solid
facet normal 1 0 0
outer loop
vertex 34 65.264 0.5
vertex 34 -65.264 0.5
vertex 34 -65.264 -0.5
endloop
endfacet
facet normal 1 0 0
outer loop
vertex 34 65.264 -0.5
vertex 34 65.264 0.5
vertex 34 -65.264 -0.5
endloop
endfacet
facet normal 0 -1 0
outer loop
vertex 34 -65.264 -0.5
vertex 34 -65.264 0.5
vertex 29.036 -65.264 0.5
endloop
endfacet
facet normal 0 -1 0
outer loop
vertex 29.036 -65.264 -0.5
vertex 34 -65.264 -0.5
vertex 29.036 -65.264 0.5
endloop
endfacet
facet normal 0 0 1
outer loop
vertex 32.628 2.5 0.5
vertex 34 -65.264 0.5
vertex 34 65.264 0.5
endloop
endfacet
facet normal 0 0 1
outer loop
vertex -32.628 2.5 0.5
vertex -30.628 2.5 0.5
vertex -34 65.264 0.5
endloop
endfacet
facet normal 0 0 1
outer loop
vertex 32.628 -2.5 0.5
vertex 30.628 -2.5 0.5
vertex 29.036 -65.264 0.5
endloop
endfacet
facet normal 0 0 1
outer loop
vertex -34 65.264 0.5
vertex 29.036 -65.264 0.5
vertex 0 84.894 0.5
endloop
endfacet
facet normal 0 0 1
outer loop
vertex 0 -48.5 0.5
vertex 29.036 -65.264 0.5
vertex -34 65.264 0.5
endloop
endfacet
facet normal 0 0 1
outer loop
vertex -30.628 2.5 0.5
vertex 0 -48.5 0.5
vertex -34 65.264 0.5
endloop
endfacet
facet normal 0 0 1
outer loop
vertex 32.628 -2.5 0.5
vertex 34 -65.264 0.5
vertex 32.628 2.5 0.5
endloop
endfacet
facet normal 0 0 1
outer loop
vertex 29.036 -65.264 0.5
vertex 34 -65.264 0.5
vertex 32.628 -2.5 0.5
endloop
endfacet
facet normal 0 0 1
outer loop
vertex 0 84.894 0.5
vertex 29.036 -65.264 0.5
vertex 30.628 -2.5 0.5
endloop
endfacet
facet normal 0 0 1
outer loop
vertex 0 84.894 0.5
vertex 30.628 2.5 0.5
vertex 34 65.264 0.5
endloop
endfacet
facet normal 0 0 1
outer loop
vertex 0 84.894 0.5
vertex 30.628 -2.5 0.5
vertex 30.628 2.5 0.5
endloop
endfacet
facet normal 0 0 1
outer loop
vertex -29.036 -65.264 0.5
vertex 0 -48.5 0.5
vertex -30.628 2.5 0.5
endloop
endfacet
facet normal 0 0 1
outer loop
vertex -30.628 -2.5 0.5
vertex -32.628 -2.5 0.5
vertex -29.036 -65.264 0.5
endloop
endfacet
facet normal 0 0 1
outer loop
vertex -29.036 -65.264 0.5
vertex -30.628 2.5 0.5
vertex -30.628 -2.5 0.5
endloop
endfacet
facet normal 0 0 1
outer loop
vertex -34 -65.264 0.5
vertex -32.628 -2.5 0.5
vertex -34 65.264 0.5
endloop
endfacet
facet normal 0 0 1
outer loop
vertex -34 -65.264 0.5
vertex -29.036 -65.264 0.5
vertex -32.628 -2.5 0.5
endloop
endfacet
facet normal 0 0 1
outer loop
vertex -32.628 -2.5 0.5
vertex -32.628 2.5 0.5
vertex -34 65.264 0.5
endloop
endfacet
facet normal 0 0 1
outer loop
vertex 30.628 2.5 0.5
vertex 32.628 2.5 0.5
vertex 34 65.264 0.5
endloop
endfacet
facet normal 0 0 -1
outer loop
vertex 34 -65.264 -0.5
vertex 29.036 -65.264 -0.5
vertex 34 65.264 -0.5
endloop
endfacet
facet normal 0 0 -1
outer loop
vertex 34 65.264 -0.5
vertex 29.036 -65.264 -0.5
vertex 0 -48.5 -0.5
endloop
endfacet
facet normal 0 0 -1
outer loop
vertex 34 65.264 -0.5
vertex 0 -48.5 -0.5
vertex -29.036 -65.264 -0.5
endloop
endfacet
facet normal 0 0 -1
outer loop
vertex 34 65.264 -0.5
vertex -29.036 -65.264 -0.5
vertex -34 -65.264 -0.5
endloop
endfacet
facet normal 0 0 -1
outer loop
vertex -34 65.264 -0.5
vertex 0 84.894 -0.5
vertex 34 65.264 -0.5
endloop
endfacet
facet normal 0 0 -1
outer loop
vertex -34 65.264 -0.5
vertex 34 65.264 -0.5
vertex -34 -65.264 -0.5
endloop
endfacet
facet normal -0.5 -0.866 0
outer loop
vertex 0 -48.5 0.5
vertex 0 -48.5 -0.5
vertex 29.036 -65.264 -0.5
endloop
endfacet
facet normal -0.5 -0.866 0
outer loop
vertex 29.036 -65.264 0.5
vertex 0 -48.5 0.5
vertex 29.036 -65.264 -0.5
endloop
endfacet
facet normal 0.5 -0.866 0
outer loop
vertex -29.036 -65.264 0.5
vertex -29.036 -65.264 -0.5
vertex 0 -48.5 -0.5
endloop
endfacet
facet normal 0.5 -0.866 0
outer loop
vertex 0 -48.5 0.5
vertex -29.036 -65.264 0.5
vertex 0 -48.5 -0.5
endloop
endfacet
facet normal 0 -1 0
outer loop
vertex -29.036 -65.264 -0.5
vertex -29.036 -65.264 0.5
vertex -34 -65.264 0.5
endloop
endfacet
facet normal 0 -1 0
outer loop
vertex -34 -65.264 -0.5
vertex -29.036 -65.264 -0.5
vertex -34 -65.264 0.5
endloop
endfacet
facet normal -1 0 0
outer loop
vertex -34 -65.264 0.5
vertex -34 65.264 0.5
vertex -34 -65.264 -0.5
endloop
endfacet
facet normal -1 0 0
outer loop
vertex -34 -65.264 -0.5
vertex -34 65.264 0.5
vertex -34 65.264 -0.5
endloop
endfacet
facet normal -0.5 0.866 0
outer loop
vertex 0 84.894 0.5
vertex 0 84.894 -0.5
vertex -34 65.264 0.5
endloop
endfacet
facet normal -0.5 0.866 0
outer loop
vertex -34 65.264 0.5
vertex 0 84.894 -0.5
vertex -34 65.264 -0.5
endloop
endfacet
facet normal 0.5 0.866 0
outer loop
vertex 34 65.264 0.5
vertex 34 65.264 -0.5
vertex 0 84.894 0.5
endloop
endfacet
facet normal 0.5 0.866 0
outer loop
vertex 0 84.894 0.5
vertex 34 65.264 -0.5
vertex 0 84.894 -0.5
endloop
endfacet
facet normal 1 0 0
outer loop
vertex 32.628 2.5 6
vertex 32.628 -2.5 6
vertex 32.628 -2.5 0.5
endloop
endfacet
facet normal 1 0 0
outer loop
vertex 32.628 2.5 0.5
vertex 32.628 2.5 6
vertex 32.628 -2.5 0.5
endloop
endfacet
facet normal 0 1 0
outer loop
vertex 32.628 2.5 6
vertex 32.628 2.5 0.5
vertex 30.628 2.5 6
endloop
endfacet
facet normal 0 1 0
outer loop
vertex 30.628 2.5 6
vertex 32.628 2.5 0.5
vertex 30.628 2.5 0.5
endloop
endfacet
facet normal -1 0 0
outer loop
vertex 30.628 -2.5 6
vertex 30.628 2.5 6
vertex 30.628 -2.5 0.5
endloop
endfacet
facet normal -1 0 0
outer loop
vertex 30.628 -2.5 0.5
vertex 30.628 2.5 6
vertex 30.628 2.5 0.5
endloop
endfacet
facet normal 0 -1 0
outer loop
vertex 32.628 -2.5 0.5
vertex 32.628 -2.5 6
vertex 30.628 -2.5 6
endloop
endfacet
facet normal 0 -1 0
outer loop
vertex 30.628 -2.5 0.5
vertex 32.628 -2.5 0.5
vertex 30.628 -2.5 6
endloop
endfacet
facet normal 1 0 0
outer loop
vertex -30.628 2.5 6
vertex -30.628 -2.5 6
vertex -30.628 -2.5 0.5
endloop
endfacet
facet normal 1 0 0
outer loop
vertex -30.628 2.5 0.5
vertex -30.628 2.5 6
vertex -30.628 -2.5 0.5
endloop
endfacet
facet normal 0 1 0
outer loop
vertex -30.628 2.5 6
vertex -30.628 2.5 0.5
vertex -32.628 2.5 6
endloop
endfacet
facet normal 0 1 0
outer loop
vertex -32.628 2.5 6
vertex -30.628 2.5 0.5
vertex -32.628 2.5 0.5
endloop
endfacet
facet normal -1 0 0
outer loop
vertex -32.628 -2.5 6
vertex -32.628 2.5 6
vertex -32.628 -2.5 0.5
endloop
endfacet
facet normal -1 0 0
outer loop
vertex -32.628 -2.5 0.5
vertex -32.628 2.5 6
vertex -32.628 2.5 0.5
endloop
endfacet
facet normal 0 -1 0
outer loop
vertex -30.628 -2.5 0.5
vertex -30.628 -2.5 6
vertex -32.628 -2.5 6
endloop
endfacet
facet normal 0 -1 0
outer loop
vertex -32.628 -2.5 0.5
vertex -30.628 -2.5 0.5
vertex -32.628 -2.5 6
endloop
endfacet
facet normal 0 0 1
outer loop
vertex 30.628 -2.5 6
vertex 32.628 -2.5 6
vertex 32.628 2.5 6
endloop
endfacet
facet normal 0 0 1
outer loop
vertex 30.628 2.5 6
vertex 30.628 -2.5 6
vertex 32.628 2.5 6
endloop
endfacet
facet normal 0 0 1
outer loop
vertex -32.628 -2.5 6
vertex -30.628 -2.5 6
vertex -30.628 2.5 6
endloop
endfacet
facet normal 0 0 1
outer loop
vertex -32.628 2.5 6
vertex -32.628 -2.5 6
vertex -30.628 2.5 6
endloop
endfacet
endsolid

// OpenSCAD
$fn = 100;

// Functions for calculating the half-hexagons
function edge_length(width) = (width/2) / cos(30); // CAH
function point_height(width) = (width/2) * tan(30); // TOA
function leg(width) = edge_length(width) * sqrt(1/2);
function x_offset(width) = (width/2) - (leg(width) * cos(15));
function y_offset(width, length) = (length/2) - (leg(width) * sin(15));

//function x_offset2(width) = (width/2) + (leg(width) * sin(15));
function y_offset2(width, length) = (length/2) + (leg(width) * cos(15)) - point_height(w) + 2; // +2 is arbitrary, should fix.

// Core size variables
scaling = 1;
h_lid = 1;
w = (65) * scaling;
l = (90 + (point_height(w) * 2)) * scaling; // 90 = Pi, ~20 for point height

// Values for wall thickness
w_pad = 3;
l_pad = 3;

W = w + w_pad;
L = l + l_pad;
btm = W*0.9;

// The teeth
t_height = 6;

// The lid
function hex_len(width) = 2 * (cos(30) * width);
hex_edge = edge_length(w/1.6);

rotate([180,0,180]){
  difference(){
    difference(){
      union(){
        cube([W, L, h_lid], center=true); // Center Cube
        translate([-W/2.15,0,-t_height/2]){cube([2, 5, t_height], center=true);} // The teeth
        translate([W/2.15,0,-t_height/2]){cube([2, 5, t_height], center=true);}
        translate([x_offset(W),y_offset(W,L),0]){
        	rotate([0,0,-30]) cube([edge_length(W),edge_length(W),h_lid], center=true);
        }
        translate([-x_offset(W),y_offset(W,L),0]){
        	rotate([0,0,30]) cube([edge_length(W),edge_length(W),h_lid], center=true);
        }
      }
      translate([x_offset(btm),-y_offset2(btm,L),0]){
      	rotate([0,0,-30]) cube([edge_length(btm),edge_length(btm),h_lid], center=true);
      }
      translate([-x_offset(btm),-y_offset2(btm,L),0]){
      	rotate([0,0,30]) cube([edge_length(btm),edge_length(btm),h_lid], center=true);
      }
    }
  }
}
